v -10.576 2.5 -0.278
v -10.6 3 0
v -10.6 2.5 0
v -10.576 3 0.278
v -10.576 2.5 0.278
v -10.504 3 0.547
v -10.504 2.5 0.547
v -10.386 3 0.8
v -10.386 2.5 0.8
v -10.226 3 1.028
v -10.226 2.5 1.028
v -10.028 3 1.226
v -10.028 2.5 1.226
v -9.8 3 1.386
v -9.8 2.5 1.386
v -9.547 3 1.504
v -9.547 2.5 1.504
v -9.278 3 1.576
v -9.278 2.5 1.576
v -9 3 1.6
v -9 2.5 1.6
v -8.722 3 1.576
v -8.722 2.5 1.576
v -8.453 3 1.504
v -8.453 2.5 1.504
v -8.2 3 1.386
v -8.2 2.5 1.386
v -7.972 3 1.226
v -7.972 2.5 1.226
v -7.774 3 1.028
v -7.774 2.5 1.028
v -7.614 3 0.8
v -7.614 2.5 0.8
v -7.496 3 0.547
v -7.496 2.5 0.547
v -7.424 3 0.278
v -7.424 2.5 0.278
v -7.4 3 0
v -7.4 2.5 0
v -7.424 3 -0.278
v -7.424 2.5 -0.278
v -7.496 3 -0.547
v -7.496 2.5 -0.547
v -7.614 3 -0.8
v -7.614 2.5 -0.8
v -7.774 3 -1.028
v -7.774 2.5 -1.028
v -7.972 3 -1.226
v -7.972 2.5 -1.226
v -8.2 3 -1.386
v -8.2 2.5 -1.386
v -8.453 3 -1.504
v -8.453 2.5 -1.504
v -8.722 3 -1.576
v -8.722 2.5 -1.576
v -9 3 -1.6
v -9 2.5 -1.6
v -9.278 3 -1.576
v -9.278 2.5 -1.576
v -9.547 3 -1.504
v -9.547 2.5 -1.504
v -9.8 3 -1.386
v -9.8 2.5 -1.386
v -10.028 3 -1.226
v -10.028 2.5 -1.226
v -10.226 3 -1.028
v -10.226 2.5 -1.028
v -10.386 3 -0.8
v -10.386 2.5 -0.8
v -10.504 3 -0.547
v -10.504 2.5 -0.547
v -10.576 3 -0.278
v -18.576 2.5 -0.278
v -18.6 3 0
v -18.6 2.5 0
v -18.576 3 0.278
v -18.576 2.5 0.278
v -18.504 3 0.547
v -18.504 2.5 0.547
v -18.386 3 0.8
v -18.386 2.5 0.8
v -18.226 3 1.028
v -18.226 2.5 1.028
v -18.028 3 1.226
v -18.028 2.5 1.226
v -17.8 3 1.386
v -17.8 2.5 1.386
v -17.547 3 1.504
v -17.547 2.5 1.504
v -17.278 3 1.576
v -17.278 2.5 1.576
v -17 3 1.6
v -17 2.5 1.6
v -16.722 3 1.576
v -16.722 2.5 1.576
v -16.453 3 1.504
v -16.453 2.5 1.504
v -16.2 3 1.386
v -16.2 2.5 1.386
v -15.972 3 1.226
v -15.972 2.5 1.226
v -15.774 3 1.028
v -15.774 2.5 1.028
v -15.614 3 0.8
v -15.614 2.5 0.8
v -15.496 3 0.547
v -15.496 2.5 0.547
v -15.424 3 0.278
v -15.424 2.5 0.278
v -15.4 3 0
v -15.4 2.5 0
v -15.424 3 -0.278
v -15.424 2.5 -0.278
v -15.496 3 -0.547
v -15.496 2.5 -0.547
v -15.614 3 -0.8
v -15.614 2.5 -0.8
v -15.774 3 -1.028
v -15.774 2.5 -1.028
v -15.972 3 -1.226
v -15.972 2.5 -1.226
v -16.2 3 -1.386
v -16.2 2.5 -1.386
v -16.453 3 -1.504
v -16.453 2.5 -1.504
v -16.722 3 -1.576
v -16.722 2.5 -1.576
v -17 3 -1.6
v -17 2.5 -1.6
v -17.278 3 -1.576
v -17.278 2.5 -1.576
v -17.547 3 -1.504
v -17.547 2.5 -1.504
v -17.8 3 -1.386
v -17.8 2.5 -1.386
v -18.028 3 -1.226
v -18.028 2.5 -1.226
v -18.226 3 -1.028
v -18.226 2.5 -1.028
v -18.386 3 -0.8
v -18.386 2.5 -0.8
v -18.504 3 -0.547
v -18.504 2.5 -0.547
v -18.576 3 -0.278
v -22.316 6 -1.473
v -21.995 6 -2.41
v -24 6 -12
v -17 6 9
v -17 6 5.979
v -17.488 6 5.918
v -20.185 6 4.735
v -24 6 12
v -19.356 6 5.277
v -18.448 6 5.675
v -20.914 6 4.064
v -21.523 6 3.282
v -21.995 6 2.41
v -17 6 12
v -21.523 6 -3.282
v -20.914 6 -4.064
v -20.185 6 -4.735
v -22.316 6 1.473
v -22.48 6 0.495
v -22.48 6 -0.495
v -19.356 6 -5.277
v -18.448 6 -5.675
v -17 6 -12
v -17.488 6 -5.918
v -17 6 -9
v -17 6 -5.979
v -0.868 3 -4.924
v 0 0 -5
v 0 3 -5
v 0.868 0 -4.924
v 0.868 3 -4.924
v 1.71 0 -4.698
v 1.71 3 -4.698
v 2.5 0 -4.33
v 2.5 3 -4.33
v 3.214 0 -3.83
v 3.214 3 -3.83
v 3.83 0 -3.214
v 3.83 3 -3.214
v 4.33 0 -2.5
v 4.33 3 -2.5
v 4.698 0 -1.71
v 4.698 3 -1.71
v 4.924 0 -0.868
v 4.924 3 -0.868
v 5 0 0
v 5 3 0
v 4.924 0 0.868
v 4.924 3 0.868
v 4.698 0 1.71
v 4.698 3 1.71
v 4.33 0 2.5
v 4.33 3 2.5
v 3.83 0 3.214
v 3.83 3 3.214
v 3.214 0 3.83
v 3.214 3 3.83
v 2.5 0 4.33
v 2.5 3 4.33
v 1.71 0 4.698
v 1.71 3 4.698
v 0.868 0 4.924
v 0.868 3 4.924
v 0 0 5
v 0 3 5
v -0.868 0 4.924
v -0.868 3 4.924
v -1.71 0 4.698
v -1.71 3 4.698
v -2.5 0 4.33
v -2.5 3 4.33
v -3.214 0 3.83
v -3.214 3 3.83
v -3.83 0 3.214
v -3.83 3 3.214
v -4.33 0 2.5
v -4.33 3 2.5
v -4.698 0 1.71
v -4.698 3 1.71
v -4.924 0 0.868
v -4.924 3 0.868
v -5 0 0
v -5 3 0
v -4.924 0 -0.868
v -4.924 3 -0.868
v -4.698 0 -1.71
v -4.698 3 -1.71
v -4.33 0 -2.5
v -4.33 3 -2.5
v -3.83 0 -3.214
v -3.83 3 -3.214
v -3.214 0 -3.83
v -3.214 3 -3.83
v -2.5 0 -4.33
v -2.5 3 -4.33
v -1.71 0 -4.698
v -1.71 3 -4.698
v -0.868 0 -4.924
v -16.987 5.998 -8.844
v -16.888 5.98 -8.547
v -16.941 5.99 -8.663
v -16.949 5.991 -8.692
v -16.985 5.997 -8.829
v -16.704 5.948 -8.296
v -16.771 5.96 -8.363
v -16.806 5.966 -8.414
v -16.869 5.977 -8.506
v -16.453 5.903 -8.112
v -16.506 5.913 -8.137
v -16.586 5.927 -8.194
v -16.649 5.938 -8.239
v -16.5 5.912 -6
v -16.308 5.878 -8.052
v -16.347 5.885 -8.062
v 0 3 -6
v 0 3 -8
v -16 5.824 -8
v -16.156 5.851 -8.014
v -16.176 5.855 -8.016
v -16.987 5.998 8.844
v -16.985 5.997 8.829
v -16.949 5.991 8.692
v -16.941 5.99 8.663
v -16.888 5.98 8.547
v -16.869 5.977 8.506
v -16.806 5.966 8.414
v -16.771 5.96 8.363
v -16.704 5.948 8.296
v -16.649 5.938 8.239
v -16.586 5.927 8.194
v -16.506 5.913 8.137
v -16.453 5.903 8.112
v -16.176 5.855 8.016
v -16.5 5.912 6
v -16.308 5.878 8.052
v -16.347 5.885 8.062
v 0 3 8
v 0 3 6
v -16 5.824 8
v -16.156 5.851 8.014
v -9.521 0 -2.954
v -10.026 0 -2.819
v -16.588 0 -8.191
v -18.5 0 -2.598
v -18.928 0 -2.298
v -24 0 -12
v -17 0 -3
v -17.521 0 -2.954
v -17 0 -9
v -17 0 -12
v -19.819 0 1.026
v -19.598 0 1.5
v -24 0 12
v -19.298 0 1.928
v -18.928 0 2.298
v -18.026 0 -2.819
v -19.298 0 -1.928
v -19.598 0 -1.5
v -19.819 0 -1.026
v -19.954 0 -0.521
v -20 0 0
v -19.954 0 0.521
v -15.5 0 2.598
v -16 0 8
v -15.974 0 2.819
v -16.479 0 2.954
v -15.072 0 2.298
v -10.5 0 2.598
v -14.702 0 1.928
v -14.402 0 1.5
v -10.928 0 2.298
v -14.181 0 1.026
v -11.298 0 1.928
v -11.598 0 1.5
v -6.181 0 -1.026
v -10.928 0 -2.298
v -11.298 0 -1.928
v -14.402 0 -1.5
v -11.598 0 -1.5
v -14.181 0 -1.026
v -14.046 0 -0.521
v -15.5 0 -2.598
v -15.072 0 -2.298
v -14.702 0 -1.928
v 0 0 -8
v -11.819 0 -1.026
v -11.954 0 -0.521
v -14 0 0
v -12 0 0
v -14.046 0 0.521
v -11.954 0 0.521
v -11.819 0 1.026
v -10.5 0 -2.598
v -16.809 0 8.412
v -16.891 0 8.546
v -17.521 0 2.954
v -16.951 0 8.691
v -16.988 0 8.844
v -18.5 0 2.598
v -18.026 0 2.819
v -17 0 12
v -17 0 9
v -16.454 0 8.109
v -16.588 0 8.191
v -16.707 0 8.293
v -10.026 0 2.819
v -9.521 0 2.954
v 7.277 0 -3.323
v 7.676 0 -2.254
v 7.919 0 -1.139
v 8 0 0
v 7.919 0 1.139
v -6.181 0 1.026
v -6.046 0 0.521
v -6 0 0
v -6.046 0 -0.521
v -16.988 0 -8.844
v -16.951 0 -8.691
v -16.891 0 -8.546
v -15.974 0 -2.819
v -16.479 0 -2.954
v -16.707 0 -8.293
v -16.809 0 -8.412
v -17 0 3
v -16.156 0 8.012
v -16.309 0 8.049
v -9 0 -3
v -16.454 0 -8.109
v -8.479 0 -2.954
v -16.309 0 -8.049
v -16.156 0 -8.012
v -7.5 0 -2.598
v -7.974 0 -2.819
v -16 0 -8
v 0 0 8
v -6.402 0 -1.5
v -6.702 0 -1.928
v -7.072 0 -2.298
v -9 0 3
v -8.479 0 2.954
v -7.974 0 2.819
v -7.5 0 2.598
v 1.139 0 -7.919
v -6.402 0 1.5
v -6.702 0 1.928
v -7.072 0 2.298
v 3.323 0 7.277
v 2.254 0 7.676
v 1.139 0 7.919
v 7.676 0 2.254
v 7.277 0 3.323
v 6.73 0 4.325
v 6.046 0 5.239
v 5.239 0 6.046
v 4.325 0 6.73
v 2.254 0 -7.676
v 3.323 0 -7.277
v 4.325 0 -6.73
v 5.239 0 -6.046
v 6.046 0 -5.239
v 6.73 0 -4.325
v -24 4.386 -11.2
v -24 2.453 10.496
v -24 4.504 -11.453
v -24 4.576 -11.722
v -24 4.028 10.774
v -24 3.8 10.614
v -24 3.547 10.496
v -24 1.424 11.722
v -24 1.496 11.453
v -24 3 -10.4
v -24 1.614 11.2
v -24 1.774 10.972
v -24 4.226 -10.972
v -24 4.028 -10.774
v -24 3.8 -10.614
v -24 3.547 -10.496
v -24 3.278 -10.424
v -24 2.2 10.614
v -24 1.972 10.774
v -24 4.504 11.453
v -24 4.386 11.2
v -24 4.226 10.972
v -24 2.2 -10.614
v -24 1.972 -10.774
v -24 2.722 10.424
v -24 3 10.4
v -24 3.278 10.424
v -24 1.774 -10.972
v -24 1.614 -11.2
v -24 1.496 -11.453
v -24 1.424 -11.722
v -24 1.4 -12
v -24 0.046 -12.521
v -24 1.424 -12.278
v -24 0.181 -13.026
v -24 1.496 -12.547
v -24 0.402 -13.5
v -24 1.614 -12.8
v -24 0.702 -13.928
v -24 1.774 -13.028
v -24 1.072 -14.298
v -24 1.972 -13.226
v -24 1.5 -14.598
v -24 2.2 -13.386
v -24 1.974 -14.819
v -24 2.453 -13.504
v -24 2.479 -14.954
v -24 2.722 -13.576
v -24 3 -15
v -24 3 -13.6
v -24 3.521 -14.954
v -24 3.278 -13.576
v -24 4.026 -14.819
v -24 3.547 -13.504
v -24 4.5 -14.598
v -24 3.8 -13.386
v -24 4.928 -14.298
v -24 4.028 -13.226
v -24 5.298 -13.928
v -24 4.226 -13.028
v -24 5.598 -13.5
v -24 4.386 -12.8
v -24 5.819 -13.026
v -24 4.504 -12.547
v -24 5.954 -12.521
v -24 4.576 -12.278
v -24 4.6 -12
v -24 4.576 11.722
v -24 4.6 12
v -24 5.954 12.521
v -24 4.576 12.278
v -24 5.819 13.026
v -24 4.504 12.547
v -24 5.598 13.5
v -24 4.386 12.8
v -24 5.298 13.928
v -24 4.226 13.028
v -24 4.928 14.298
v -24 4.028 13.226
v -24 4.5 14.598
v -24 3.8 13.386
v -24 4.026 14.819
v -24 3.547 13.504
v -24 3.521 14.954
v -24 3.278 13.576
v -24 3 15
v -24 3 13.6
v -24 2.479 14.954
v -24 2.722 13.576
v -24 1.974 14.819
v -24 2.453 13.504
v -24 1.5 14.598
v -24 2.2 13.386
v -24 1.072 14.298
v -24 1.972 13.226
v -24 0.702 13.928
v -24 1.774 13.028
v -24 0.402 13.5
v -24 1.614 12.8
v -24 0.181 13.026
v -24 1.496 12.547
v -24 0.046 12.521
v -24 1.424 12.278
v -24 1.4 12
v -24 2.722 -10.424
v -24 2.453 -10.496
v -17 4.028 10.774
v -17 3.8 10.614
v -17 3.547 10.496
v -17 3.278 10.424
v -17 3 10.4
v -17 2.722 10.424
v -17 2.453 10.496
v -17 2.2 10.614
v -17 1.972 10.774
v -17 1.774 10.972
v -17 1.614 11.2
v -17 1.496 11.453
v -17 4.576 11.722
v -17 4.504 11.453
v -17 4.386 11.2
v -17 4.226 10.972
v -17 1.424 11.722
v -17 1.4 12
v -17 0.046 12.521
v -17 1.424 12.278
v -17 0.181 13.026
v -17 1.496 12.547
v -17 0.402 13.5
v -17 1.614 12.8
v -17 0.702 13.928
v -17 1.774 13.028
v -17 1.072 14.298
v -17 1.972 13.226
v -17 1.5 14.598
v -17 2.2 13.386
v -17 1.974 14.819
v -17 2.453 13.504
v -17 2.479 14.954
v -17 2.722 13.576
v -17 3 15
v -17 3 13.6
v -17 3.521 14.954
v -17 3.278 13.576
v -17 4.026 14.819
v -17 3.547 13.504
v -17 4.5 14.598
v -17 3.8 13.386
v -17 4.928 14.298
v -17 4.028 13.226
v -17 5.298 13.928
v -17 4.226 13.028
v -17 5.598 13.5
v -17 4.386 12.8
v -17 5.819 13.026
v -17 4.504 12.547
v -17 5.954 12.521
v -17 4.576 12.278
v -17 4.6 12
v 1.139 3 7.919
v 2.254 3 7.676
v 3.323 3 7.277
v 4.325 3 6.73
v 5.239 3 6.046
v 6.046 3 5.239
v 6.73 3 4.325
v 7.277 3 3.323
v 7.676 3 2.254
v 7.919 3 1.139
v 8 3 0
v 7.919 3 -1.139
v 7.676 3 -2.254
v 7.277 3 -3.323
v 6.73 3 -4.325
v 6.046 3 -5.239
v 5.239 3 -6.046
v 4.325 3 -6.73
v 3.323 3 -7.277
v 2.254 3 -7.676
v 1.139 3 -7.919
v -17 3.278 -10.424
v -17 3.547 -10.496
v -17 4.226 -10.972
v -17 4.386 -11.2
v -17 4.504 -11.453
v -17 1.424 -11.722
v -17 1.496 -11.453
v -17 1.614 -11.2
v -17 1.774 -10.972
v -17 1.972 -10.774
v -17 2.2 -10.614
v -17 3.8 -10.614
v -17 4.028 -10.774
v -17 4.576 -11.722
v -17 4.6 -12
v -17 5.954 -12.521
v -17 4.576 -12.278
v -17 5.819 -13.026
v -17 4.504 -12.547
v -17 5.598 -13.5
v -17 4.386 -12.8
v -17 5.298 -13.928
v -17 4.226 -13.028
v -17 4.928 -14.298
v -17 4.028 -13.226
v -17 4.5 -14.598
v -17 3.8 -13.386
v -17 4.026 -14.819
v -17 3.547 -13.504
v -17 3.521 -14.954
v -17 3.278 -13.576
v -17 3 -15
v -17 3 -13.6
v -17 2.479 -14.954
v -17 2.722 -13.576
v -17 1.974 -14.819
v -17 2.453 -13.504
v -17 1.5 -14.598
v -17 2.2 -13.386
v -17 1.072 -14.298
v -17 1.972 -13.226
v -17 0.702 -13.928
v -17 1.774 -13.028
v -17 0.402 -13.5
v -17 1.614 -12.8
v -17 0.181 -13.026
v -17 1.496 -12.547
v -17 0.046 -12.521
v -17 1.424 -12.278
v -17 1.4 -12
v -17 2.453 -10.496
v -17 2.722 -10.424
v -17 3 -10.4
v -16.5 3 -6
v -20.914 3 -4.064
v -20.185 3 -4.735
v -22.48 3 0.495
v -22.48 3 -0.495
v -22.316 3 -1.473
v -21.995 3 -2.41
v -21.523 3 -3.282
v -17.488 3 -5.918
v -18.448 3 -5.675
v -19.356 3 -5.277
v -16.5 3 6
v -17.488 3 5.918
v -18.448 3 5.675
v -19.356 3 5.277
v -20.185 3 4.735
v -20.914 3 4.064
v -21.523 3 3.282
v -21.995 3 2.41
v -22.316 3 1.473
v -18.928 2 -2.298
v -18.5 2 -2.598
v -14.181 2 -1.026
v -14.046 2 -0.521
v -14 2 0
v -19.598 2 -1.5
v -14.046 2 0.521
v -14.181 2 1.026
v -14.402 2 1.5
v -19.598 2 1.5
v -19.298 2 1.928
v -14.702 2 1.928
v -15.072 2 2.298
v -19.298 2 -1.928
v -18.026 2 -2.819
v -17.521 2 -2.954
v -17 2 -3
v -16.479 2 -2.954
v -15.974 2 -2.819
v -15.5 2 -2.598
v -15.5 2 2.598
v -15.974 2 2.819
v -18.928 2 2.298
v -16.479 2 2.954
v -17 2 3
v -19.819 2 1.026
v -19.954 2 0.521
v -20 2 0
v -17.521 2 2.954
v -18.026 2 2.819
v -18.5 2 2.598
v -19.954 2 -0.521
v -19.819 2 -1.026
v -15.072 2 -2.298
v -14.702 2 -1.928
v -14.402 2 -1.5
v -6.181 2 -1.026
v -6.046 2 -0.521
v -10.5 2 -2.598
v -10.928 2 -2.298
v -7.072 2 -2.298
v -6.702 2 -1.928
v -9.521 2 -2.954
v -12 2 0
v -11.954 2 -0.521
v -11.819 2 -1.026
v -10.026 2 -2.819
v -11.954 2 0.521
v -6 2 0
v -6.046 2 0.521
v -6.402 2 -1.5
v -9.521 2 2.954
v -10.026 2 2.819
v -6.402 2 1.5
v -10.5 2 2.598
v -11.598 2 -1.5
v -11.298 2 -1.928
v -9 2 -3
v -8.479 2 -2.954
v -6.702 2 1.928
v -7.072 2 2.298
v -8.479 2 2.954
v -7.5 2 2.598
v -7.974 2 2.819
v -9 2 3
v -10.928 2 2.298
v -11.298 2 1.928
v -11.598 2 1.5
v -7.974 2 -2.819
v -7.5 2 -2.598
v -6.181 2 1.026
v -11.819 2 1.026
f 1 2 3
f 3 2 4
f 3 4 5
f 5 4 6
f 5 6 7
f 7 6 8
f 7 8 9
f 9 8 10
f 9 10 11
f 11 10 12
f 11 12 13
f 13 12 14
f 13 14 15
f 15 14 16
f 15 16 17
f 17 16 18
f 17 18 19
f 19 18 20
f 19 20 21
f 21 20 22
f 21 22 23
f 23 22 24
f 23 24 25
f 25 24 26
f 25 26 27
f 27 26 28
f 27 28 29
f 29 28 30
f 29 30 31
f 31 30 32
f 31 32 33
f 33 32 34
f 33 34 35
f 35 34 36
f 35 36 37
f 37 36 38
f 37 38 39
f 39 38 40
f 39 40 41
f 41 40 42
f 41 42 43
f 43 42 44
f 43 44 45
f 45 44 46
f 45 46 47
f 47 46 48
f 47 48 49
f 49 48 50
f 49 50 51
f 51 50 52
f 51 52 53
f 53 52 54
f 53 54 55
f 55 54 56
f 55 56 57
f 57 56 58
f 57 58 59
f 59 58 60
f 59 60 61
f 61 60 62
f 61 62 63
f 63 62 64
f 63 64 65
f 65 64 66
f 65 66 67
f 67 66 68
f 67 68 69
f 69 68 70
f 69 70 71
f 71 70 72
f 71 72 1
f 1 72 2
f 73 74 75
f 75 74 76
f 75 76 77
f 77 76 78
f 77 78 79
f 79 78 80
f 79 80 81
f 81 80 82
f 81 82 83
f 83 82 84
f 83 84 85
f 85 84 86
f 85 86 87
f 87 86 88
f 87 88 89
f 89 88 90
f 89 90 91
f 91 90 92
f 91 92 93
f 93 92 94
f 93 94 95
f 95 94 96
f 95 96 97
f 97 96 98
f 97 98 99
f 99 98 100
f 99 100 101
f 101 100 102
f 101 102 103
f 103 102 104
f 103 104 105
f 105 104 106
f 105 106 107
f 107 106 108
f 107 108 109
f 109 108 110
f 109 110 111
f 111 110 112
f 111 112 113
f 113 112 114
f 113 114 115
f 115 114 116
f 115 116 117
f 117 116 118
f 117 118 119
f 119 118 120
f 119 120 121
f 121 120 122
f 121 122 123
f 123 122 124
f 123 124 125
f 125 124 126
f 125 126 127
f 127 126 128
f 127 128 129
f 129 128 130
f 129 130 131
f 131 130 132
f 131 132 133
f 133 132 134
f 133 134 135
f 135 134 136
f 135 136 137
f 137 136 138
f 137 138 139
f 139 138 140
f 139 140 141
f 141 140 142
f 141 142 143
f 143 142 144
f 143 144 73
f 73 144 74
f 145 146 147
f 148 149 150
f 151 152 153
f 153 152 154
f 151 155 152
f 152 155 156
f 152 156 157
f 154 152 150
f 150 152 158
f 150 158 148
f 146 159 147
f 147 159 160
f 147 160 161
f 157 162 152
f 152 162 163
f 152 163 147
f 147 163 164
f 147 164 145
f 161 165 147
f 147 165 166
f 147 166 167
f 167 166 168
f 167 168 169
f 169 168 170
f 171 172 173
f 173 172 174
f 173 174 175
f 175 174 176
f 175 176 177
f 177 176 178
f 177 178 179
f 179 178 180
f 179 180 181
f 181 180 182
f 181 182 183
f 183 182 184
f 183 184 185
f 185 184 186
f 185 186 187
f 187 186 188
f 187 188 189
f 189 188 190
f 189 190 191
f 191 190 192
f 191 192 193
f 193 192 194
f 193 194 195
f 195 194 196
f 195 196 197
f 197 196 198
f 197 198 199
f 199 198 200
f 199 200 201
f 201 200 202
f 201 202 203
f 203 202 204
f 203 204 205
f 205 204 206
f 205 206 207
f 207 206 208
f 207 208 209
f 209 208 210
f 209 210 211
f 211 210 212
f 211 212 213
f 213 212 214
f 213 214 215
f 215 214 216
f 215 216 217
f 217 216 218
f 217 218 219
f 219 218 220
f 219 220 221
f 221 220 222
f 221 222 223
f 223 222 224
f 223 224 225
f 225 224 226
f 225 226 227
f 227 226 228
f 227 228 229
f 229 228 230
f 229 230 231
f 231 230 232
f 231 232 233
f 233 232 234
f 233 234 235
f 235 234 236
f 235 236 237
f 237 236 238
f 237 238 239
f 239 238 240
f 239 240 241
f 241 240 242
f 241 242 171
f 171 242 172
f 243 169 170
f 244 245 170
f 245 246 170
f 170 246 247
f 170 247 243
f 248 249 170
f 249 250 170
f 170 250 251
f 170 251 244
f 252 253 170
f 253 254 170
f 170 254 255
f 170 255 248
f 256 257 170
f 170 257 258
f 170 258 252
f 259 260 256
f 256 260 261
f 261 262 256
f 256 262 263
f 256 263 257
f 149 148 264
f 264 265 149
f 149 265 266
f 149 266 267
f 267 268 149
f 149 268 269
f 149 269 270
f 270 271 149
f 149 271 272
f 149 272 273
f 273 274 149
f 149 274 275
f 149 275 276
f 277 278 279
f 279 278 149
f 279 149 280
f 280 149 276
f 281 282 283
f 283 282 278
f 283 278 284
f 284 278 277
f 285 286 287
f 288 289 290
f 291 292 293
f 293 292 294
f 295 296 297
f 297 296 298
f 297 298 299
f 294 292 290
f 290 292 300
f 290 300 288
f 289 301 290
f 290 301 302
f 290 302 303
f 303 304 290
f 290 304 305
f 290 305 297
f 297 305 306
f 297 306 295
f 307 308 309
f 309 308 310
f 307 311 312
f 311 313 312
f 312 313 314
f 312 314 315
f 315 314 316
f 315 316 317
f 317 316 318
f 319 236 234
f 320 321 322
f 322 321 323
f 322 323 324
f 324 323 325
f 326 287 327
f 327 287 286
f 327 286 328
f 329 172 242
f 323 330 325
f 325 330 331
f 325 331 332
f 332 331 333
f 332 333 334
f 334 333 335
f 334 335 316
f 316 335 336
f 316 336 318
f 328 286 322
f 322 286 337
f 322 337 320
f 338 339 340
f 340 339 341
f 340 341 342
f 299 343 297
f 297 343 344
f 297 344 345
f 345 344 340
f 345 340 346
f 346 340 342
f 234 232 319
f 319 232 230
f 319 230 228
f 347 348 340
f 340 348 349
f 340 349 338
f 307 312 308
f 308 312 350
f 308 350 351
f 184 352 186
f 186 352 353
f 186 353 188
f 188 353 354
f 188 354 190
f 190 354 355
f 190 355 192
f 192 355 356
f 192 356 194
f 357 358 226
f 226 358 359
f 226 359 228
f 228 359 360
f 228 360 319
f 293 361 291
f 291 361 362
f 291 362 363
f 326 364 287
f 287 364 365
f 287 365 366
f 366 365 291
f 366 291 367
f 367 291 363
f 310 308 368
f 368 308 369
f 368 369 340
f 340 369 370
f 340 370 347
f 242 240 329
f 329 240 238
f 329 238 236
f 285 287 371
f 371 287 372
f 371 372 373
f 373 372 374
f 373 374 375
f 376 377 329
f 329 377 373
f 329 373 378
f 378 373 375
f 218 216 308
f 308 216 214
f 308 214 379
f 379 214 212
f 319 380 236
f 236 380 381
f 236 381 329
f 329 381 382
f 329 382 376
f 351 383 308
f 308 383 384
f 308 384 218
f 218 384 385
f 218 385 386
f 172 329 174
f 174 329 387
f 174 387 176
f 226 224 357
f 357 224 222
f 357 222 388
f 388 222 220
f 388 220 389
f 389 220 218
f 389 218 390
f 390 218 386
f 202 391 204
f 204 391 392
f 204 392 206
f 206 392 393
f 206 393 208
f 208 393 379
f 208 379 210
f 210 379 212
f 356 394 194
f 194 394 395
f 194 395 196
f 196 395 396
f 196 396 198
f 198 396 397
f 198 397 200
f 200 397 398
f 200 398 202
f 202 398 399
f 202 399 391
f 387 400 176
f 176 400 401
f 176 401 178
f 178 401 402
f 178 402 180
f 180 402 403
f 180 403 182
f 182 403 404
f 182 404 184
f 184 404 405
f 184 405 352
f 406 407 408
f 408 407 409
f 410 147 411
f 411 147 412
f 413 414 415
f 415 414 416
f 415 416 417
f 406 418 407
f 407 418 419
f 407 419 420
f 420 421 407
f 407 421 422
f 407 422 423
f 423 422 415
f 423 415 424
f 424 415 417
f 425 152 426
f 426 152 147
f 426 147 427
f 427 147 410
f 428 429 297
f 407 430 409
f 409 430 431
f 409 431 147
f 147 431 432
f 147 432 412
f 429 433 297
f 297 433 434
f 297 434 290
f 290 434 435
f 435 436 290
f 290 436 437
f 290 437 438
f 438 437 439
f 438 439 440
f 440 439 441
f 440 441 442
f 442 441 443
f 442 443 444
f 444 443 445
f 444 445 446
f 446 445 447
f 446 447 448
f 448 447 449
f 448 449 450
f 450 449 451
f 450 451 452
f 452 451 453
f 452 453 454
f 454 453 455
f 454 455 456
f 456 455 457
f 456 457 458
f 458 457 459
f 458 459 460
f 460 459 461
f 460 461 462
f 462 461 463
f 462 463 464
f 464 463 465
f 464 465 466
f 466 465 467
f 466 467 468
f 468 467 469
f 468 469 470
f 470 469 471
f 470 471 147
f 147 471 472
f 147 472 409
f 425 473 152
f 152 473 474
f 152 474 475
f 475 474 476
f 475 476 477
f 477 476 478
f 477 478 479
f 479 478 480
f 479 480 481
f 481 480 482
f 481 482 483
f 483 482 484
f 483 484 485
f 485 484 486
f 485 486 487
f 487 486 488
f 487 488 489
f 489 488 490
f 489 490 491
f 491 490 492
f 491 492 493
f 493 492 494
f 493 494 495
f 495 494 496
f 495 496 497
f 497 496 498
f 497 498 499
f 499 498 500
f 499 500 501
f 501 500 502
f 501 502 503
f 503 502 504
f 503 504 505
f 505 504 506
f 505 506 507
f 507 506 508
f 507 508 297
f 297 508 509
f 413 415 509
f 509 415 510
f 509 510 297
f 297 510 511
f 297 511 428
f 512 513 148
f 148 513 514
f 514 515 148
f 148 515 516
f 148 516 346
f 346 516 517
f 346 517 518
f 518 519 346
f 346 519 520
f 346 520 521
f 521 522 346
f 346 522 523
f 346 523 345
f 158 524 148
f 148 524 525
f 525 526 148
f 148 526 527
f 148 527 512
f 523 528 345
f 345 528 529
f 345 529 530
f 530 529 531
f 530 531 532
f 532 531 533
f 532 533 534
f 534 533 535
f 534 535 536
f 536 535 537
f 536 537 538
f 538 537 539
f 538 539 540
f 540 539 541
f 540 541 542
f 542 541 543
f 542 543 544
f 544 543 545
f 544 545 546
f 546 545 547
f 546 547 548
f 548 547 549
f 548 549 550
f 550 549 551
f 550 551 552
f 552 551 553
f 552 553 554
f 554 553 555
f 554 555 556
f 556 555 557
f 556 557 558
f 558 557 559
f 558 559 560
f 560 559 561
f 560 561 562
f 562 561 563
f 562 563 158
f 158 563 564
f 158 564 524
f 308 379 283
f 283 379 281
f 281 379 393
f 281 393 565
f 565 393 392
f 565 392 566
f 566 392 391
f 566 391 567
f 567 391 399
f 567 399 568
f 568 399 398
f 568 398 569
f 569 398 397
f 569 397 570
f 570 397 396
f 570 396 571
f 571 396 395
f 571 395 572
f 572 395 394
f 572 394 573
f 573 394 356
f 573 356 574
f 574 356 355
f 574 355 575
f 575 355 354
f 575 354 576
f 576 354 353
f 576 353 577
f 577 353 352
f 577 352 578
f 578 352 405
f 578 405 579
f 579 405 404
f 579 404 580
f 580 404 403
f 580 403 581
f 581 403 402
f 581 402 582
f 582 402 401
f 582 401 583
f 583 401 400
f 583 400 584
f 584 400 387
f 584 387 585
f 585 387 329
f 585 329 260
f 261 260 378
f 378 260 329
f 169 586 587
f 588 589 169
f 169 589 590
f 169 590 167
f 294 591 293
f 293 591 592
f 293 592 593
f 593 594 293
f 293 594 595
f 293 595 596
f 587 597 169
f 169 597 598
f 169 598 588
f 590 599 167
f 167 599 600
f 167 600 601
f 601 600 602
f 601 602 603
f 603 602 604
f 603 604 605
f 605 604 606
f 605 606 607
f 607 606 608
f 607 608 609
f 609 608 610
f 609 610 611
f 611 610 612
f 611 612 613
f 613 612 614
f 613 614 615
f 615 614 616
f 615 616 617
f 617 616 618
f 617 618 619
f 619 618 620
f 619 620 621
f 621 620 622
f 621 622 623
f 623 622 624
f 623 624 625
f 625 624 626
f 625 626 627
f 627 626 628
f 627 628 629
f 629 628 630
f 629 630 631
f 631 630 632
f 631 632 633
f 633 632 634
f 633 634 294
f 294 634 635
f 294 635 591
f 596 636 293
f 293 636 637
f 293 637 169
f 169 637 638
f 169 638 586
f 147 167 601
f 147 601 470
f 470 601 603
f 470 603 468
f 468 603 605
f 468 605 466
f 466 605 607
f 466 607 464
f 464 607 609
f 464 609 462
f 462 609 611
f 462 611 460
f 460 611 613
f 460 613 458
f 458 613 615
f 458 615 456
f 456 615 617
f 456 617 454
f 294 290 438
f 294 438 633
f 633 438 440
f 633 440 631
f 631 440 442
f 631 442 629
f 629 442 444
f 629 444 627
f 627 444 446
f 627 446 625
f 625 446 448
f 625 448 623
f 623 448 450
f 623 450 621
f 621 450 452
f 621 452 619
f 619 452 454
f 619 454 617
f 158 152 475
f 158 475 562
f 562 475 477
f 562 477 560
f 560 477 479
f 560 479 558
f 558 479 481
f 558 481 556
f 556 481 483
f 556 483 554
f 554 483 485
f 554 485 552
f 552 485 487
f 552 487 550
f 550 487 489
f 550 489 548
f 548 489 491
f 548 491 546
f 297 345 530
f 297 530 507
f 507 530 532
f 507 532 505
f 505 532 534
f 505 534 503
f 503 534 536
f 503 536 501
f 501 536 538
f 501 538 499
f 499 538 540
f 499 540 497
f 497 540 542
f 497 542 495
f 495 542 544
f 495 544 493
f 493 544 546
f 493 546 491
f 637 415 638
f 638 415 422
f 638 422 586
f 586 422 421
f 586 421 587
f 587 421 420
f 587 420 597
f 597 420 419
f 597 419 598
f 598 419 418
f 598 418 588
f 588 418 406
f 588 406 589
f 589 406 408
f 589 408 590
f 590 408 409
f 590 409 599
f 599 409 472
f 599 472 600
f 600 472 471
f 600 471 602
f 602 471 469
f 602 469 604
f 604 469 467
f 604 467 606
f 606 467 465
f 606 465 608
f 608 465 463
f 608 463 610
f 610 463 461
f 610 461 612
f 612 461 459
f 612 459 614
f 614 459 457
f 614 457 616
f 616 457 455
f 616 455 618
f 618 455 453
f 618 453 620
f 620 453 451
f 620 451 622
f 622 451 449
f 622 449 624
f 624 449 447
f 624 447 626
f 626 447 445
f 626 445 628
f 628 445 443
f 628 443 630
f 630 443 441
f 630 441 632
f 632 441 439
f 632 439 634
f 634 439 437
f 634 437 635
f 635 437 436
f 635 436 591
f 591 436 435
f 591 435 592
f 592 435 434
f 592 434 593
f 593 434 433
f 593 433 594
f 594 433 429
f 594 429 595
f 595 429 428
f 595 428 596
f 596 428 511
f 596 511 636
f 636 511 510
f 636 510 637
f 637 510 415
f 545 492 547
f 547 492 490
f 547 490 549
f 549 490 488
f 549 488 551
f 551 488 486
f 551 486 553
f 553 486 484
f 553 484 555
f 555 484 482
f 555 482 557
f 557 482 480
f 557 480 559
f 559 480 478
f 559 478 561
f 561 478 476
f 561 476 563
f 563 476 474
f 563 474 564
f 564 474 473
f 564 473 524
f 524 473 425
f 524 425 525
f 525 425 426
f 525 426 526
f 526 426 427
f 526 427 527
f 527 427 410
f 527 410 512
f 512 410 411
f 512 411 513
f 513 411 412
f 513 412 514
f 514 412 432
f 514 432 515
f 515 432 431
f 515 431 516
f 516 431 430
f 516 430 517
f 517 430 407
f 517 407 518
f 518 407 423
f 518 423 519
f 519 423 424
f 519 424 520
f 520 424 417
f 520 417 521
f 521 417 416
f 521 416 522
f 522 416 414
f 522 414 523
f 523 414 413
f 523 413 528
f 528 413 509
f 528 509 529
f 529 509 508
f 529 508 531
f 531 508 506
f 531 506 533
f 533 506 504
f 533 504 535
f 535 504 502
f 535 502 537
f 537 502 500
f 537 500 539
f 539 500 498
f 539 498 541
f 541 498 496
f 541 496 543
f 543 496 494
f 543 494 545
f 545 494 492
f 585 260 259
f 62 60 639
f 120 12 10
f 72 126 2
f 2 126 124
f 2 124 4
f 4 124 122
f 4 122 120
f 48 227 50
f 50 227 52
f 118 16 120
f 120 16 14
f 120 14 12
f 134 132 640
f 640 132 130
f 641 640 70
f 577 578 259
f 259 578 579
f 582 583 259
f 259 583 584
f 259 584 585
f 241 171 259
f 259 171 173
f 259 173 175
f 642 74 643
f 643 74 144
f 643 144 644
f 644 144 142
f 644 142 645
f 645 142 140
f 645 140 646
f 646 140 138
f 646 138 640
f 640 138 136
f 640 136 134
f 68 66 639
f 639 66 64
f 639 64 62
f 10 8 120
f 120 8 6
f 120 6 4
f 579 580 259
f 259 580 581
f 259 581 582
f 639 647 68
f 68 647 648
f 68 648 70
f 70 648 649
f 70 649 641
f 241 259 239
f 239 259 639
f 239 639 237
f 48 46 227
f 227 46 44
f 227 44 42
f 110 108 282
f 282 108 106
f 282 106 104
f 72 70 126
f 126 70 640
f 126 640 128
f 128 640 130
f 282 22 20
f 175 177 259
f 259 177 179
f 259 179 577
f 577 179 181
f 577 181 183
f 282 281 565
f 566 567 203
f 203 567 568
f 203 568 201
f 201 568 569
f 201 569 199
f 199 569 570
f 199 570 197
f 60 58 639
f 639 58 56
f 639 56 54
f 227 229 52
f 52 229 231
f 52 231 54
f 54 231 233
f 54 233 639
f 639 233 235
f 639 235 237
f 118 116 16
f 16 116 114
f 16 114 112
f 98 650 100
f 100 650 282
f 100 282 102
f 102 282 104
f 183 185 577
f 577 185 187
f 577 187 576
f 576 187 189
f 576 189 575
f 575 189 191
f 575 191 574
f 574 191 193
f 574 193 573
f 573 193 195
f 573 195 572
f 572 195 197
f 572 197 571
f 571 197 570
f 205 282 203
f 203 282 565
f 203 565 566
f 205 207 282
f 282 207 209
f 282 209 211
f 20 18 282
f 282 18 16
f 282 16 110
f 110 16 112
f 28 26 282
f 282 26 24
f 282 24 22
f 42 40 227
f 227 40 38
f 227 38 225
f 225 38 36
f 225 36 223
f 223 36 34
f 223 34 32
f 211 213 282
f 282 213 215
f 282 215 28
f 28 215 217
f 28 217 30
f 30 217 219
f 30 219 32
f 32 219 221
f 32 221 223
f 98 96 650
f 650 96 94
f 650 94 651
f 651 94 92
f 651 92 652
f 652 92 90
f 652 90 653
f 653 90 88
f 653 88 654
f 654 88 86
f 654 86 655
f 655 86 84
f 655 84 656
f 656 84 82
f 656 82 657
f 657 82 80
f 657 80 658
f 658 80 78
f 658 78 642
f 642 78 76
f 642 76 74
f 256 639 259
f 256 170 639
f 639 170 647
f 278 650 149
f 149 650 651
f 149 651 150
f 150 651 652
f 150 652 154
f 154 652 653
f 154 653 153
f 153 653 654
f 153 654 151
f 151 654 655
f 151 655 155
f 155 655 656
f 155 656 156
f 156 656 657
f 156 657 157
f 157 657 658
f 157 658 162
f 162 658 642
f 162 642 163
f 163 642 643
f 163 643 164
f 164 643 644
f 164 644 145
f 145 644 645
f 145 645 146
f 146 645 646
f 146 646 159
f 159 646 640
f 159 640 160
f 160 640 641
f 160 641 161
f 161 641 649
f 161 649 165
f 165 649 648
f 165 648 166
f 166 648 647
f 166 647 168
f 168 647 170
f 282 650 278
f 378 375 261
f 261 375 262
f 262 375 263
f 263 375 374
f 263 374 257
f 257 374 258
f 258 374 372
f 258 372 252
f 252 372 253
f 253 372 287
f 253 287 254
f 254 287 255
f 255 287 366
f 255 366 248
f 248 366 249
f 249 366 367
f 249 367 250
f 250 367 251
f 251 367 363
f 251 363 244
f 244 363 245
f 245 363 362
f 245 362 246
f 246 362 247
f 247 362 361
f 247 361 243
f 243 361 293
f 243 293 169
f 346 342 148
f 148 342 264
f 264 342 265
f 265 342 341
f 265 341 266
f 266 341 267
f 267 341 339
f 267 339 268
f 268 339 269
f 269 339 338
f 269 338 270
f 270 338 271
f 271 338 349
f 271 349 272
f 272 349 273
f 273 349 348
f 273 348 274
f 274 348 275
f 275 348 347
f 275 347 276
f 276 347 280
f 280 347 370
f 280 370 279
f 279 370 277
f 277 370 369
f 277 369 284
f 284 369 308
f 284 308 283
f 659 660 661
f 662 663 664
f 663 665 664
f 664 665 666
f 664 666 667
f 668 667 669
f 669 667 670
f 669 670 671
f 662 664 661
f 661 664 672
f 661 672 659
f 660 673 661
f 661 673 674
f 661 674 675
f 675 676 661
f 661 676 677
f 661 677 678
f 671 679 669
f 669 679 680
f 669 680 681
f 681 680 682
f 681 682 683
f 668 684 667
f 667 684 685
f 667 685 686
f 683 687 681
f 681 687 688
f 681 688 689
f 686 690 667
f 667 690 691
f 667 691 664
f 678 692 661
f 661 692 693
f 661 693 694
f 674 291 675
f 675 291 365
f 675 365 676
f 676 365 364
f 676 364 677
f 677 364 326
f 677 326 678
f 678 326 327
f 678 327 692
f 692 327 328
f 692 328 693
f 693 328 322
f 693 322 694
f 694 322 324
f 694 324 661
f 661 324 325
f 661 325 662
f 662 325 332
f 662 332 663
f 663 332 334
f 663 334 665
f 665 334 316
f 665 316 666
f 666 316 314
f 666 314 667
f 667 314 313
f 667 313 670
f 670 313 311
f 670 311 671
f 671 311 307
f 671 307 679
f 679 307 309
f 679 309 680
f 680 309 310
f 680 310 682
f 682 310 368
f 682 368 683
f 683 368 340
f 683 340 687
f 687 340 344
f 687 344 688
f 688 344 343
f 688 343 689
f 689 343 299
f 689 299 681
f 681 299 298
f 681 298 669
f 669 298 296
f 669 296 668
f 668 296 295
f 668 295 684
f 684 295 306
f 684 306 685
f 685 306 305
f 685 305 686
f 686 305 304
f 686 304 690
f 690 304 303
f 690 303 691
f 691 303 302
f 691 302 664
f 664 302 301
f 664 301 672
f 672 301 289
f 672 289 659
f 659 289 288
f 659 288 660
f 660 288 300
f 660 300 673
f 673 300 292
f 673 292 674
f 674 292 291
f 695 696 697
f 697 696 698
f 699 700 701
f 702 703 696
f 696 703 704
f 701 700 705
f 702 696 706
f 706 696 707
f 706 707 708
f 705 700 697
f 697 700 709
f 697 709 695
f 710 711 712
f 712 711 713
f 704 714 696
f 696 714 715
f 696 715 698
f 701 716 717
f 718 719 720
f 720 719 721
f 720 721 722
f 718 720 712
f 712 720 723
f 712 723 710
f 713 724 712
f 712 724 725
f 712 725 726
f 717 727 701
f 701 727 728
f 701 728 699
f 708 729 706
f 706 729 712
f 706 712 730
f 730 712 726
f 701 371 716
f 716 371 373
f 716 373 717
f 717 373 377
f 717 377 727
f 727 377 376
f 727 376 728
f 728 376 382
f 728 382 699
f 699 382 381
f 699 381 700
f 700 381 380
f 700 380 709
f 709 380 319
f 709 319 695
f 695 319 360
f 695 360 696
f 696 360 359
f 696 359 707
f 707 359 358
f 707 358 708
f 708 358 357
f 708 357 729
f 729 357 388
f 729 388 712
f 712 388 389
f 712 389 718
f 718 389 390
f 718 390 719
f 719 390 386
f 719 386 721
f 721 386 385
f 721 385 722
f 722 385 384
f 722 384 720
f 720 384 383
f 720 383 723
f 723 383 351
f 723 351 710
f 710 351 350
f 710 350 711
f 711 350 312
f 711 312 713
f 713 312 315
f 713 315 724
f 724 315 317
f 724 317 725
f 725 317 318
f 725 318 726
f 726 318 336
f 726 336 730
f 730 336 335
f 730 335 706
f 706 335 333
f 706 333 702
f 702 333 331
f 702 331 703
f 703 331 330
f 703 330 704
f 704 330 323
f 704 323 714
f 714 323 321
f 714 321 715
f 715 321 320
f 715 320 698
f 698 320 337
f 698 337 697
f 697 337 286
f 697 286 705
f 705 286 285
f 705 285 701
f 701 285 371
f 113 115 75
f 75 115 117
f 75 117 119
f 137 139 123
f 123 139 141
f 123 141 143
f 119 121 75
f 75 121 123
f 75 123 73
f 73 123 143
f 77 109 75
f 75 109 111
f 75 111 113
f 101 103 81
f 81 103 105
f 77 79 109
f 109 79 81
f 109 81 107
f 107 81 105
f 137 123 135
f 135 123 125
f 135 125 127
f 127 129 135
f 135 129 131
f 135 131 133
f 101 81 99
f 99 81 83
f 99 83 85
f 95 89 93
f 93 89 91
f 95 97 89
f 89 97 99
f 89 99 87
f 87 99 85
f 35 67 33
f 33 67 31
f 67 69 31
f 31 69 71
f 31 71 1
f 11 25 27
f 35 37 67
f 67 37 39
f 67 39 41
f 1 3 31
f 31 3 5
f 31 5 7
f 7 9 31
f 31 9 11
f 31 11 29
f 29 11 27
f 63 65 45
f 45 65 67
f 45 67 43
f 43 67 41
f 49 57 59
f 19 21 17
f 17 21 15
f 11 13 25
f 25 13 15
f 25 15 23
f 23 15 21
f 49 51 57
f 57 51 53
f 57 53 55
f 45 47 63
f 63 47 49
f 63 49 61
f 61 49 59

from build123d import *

# Parameters (mm, degrees)
SKETCH1_R               = 5
BOSS_EXTRUDE1_DEPTH     = 6
FILLET1_R               = 3
SKETCH2_R               = 1.6
CUT_EXTRUDE1_DEPTH      = 36.846896658
CUT_EXTRUDE2_DEPTH      = 29.930952283
CUT_EXTRUDE2_DEPTH_BACK = 29.930952283
CUT_EXTRUDE3_DEPTH      = 29.460498942
FILLET3_R               = 1
SKETCH5_R               = 1.6
CUT_EXTRUDE4_DEPTH      = 29.460498942
SKETCH6_R               = 3
CUT_EXTRUDE5_DEPTH      = 2
BOSS_EXTRUDE2_START     = -0.5
SKETCH7_R               = 1.6
BOSS_EXTRUDE2_DEPTH     = 0.5


with BuildPart() as part:
    # Sketch1 → Boss-Extrude1 (new body)
    with BuildSketch(Plane(origin=(0, 0, 0), x_dir=(1, 0, 0), z_dir=(0, 1, 0))):
        with BuildLine():
            Line((0, 8), (-17, 8))
            Line((-17, 8), (-17, 15))
            Line((-17, 15), (-24, 15))
            Line((-24, 15), (-24, -15))
            Line((-24, -15), (-17, -15))
            Line((-17, -15), (-17, -8))
            Line((-17, -8), (0, -8))
            ThreePointArc((0, -8), (8, 0), (0, 8))
        make_face()
        with Locations(Location((0, 0, 0), (0, 0, 270))):
            Circle(SKETCH1_R, mode=Mode.SUBTRACT)
    extrude(amount=BOSS_EXTRUDE1_DEPTH)

    # Fillet1
    fillet1_edges = [part.edges().sort_by_distance(p)[0] for p in [
        (-20.5, 0, -15),
        (-20.5, 6, -15),
        (-20.5, 0, 15),
        (-20.5, 6, 15),
    ]]
    fillet(fillet1_edges, radius=FILLET1_R - 0.0001)  # a hair under: the kernel refuses the full size

    # Sketch2 → Cut-Extrude1 (cut, through all)
    with BuildSketch(Plane.ZY.offset(24)):
        with Locations((-12, 3)):
            Circle(SKETCH2_R)
        with Locations((12, 3)):
            Circle(SKETCH2_R)
    extrude(amount=-CUT_EXTRUDE1_DEPTH, mode=Mode.SUBTRACT)

    # Sketch3 → Cut-Extrude2 (cut, two sides: drawn at the far end of the back side and taken through both)
    with BuildSketch(Plane.XY.offset(-CUT_EXTRUDE2_DEPTH_BACK)):
        Polygon((-17, 6), (8, 6), (8, 3), (0, 3), align=None)
    extrude(amount=CUT_EXTRUDE2_DEPTH + CUT_EXTRUDE2_DEPTH_BACK, mode=Mode.SUBTRACT)

    # Sketch4 → Cut-Extrude3 (cut, through all)
    with BuildSketch(Plane(origin=(0, 3, 0), x_dir=(1, 0, 0), z_dir=(0, 1, 0))):
        with BuildLine():
            Line((0, -6), (-16.5, -6))
            ThreePointArc((-16.5, -6), (-22.5, 0), (-16.5, 6))
            Line((-16.5, 6), (0, 6))
            ThreePointArc((0, 6), (6, 0), (0, -6))
        make_face()
    extrude(amount=CUT_EXTRUDE3_DEPTH, mode=Mode.SUBTRACT)

    # Fillet3
    fillet3_edges = [part.edges().sort_by_distance(p)[0] for p in [
        (-17, 3, -8),
        (-17, 3, 8),
    ]]
    fillet(fillet3_edges, radius=FILLET3_R)

    # Sketch5 → Cut-Extrude4 (cut, through all)
    with BuildSketch(Plane(origin=(0, 3, 0), x_dir=(1, 0, 0), z_dir=(0, 1, 0))):
        with Locations(Location((-9, 0, 0), (0, 0, 180))):
            Circle(SKETCH5_R)
        with Locations(Location((-17, 0, 0), (0, 0, 180))):
            Circle(SKETCH5_R)
    extrude(amount=-CUT_EXTRUDE4_DEPTH, mode=Mode.SUBTRACT)

    # Sketch6 → Cut-Extrude5 (cut)
    with BuildSketch(Plane.XZ):
        with Locations(Location((-17, 0, 0), (0, 0, 270))):
            Circle(SKETCH6_R)
        with Locations(Location((-9, 0, 0), (0, 0, 270))):
            Circle(SKETCH6_R)
    extrude(amount=-CUT_EXTRUDE5_DEPTH, mode=Mode.SUBTRACT)

    # Sketch7 → Boss-Extrude2 (add)
    with BuildSketch(Plane.XZ.offset(-2).offset(BOSS_EXTRUDE2_START)):
        with Locations(Location((-17, 0, 0), (0, 0, 180))):
            Circle(SKETCH7_R)
        with Locations(Location((-9, 0, 0), (0, 0, 180))):
            Circle(SKETCH7_R)
    extrude(amount=BOSS_EXTRUDE2_DEPTH)


solid = part.part
